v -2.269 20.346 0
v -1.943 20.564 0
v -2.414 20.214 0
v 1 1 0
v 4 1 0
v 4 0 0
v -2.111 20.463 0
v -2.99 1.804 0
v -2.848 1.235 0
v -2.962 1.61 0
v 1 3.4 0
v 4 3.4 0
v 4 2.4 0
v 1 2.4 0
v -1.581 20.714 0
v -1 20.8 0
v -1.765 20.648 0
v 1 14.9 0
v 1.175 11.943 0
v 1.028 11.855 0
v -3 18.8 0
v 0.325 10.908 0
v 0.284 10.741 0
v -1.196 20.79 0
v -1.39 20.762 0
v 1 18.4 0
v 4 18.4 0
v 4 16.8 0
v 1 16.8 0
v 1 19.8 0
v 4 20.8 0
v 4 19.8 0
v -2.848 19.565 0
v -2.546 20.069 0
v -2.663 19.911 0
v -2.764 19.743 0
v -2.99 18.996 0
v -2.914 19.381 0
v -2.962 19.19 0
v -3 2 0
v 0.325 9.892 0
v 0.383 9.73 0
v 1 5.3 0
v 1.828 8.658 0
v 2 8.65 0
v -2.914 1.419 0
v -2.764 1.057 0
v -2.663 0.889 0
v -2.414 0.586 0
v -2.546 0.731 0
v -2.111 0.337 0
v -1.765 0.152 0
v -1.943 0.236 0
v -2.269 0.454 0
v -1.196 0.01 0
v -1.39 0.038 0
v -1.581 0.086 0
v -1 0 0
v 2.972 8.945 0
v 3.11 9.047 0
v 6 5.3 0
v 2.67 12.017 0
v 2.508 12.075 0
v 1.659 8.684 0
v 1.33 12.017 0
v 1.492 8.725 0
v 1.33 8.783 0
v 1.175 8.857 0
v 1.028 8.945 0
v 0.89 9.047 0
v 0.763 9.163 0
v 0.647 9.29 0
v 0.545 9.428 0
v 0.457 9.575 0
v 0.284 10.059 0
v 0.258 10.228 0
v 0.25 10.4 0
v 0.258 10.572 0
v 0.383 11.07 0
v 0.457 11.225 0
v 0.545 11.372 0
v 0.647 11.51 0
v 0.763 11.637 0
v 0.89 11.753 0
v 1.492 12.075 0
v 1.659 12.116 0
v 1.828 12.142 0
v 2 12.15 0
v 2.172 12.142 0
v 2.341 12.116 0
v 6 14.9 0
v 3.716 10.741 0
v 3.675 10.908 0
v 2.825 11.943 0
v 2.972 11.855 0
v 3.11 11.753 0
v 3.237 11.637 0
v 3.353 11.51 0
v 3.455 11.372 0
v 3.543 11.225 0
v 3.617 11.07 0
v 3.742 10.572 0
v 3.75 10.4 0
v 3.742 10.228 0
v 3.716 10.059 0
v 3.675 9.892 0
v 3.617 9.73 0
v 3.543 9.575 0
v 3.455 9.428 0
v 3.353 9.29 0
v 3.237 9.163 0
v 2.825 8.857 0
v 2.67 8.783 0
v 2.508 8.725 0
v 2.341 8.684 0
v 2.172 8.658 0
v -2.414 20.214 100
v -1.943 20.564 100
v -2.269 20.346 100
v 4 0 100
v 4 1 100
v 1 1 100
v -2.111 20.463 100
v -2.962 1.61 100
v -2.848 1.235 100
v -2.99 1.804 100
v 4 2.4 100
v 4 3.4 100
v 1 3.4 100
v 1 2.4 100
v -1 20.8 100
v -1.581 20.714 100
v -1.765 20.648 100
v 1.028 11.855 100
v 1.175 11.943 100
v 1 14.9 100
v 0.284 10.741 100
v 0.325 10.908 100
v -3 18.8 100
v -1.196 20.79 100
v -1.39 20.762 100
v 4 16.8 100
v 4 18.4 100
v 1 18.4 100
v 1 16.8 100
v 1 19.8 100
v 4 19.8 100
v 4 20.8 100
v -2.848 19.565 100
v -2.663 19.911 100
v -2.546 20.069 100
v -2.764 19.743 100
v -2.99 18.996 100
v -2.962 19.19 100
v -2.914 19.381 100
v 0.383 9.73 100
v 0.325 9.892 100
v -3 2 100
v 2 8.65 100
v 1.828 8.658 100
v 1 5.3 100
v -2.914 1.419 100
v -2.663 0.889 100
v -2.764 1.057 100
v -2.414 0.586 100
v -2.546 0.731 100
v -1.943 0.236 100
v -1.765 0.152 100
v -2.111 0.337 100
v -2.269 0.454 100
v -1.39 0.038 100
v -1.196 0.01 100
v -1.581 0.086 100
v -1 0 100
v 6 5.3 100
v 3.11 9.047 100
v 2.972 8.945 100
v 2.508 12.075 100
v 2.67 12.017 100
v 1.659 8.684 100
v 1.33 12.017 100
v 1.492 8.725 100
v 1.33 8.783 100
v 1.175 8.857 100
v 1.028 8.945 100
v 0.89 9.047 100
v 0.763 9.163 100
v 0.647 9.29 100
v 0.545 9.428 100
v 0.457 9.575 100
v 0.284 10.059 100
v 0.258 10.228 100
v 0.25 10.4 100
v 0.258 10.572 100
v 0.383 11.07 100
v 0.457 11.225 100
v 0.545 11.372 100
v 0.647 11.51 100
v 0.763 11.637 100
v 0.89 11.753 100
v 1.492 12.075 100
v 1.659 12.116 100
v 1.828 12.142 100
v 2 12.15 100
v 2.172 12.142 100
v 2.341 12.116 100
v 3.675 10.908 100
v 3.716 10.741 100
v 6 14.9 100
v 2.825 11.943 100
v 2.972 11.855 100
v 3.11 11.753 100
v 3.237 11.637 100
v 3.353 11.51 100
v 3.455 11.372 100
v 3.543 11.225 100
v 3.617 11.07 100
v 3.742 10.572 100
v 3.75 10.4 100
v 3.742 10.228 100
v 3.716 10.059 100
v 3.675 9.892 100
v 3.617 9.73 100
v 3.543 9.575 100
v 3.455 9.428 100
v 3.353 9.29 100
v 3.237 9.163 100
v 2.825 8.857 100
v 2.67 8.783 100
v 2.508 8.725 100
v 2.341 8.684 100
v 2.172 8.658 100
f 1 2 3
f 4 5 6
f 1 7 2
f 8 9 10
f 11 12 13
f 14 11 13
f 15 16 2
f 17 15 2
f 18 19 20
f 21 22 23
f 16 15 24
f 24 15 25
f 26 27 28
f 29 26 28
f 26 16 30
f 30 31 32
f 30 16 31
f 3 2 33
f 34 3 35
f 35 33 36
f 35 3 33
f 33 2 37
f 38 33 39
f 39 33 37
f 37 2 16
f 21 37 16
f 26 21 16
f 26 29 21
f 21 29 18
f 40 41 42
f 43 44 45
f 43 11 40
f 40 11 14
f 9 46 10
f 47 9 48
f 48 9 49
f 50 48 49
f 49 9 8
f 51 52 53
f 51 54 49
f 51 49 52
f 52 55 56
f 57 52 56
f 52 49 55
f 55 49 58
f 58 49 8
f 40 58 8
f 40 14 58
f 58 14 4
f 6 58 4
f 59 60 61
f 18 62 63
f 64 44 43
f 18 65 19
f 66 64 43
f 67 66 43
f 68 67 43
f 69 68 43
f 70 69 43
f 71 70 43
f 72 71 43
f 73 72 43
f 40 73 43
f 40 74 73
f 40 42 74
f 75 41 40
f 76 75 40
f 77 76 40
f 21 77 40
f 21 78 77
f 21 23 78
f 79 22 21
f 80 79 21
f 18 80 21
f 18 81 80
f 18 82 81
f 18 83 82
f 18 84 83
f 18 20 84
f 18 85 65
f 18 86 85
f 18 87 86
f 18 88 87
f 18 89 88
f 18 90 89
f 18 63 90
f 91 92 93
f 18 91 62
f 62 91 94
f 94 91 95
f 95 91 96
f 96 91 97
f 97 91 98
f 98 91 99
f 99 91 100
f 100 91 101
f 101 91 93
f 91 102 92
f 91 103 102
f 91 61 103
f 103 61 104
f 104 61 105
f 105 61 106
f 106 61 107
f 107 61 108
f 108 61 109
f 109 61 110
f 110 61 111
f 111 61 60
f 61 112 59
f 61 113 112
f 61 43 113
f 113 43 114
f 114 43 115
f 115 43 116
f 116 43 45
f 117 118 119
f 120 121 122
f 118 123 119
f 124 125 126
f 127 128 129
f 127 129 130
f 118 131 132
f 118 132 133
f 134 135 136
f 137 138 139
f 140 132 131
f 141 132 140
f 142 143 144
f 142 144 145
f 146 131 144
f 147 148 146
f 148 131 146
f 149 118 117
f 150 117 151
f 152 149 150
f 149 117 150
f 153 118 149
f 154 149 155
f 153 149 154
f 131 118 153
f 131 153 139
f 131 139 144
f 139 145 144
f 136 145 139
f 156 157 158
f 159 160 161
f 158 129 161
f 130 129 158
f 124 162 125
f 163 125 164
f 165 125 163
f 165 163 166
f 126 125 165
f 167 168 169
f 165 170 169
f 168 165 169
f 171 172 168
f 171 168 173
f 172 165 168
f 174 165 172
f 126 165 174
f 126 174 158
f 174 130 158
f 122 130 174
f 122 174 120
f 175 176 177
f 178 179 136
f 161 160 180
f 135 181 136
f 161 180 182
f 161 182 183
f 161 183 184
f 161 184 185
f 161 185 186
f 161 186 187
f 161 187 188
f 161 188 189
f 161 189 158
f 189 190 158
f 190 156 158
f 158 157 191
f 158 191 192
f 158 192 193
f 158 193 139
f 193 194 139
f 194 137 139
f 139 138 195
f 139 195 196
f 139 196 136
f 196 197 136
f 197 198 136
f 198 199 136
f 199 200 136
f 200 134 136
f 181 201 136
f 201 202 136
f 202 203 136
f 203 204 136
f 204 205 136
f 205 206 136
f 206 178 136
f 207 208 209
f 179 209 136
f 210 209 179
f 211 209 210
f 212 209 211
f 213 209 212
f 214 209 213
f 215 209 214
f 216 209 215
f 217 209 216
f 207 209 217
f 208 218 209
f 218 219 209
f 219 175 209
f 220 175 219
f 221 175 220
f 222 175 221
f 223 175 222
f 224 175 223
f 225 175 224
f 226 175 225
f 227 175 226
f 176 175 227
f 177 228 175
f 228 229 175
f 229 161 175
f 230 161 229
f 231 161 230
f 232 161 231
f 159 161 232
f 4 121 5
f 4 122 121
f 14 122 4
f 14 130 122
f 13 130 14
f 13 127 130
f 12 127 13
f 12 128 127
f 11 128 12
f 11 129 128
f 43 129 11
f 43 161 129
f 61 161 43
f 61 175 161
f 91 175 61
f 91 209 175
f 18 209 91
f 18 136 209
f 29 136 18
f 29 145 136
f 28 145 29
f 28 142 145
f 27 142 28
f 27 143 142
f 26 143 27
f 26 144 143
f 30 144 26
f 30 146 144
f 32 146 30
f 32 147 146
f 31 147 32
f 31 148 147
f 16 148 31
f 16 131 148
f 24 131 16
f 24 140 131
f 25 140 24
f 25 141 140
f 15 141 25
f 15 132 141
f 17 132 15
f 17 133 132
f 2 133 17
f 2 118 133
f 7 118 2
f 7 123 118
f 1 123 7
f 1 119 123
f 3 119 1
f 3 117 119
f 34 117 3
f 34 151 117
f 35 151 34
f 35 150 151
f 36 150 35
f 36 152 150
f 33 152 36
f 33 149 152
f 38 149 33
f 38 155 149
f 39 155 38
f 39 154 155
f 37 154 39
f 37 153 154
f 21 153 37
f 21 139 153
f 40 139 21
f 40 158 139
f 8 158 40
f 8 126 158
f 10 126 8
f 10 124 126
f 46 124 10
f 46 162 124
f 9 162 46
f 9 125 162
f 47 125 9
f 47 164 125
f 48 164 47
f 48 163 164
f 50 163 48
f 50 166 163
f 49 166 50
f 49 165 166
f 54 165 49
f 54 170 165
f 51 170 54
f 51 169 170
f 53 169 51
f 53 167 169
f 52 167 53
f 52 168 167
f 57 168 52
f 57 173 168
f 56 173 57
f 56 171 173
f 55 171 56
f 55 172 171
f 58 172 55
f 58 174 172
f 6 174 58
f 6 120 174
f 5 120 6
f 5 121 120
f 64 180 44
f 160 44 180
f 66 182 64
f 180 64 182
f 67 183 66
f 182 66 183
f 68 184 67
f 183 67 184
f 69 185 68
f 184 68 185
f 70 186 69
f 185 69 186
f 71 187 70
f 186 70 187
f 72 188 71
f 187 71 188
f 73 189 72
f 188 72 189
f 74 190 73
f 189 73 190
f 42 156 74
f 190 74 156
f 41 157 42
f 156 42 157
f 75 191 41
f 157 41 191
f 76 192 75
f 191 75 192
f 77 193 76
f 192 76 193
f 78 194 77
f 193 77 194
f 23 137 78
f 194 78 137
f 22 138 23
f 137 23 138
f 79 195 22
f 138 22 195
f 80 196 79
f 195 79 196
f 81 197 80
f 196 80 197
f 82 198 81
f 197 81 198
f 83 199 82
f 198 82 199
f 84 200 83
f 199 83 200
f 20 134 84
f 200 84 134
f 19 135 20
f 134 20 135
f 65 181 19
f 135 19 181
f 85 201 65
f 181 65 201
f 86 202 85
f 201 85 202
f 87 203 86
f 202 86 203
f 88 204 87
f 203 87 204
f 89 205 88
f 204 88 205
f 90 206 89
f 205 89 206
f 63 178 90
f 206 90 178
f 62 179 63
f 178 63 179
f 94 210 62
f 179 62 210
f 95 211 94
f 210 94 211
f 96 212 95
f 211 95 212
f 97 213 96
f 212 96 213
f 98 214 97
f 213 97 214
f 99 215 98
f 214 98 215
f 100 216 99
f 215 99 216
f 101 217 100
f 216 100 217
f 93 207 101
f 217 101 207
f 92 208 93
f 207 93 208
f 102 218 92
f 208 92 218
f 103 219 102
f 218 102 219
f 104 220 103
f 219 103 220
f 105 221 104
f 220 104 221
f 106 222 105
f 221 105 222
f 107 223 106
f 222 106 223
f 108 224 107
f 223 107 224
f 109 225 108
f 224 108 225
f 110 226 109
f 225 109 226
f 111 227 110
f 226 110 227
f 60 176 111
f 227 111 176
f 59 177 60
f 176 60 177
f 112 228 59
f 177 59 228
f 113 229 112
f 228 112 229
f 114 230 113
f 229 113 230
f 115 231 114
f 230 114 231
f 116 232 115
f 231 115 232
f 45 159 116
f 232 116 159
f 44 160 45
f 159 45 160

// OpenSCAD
// Abmessungen
hoehe    = 20.8;
staerke  = 1;
laenge   = 100;
radius = 2;
loch_d   = 3.5;   // Lochdurchmesser

module e_profil_2d() {
    difference() {

        union() {
            // Langer Schenkel / Rücken
            translate([-1,0])         
            square([2, hoehe]);
            
             hull() {
                translate([-1, radius])
                    circle(r = radius, $fn = 64);

                translate([-1, hoehe - radius])
                    circle(r = radius, $fn = 64);
            }
            

            // Unterer Schenkel
            square([4, 1]);
            
            translate([0, 2.4])
            square([4, 1]); 
            
            // Mittlerer Klotz
            translate([0, 5.3])
            square([6, 9.6]);            
            
 
            translate([0, 16.8])
            square([4, 1.6]); 
            
            // oberer Schenkel
            translate([0, hoehe - 1])
            square([4, 1]);

        }

        // Loch mittig im langen 5-mm-Schenkel
        translate([
            2,
            hoehe / 2
        ])
            circle(d = loch_d, $fn = 64);
    }
}

// E-Kontur inklusive Loch 150 mm extrudieren
linear_extrude(height = laenge)
    e_profil_2d();
